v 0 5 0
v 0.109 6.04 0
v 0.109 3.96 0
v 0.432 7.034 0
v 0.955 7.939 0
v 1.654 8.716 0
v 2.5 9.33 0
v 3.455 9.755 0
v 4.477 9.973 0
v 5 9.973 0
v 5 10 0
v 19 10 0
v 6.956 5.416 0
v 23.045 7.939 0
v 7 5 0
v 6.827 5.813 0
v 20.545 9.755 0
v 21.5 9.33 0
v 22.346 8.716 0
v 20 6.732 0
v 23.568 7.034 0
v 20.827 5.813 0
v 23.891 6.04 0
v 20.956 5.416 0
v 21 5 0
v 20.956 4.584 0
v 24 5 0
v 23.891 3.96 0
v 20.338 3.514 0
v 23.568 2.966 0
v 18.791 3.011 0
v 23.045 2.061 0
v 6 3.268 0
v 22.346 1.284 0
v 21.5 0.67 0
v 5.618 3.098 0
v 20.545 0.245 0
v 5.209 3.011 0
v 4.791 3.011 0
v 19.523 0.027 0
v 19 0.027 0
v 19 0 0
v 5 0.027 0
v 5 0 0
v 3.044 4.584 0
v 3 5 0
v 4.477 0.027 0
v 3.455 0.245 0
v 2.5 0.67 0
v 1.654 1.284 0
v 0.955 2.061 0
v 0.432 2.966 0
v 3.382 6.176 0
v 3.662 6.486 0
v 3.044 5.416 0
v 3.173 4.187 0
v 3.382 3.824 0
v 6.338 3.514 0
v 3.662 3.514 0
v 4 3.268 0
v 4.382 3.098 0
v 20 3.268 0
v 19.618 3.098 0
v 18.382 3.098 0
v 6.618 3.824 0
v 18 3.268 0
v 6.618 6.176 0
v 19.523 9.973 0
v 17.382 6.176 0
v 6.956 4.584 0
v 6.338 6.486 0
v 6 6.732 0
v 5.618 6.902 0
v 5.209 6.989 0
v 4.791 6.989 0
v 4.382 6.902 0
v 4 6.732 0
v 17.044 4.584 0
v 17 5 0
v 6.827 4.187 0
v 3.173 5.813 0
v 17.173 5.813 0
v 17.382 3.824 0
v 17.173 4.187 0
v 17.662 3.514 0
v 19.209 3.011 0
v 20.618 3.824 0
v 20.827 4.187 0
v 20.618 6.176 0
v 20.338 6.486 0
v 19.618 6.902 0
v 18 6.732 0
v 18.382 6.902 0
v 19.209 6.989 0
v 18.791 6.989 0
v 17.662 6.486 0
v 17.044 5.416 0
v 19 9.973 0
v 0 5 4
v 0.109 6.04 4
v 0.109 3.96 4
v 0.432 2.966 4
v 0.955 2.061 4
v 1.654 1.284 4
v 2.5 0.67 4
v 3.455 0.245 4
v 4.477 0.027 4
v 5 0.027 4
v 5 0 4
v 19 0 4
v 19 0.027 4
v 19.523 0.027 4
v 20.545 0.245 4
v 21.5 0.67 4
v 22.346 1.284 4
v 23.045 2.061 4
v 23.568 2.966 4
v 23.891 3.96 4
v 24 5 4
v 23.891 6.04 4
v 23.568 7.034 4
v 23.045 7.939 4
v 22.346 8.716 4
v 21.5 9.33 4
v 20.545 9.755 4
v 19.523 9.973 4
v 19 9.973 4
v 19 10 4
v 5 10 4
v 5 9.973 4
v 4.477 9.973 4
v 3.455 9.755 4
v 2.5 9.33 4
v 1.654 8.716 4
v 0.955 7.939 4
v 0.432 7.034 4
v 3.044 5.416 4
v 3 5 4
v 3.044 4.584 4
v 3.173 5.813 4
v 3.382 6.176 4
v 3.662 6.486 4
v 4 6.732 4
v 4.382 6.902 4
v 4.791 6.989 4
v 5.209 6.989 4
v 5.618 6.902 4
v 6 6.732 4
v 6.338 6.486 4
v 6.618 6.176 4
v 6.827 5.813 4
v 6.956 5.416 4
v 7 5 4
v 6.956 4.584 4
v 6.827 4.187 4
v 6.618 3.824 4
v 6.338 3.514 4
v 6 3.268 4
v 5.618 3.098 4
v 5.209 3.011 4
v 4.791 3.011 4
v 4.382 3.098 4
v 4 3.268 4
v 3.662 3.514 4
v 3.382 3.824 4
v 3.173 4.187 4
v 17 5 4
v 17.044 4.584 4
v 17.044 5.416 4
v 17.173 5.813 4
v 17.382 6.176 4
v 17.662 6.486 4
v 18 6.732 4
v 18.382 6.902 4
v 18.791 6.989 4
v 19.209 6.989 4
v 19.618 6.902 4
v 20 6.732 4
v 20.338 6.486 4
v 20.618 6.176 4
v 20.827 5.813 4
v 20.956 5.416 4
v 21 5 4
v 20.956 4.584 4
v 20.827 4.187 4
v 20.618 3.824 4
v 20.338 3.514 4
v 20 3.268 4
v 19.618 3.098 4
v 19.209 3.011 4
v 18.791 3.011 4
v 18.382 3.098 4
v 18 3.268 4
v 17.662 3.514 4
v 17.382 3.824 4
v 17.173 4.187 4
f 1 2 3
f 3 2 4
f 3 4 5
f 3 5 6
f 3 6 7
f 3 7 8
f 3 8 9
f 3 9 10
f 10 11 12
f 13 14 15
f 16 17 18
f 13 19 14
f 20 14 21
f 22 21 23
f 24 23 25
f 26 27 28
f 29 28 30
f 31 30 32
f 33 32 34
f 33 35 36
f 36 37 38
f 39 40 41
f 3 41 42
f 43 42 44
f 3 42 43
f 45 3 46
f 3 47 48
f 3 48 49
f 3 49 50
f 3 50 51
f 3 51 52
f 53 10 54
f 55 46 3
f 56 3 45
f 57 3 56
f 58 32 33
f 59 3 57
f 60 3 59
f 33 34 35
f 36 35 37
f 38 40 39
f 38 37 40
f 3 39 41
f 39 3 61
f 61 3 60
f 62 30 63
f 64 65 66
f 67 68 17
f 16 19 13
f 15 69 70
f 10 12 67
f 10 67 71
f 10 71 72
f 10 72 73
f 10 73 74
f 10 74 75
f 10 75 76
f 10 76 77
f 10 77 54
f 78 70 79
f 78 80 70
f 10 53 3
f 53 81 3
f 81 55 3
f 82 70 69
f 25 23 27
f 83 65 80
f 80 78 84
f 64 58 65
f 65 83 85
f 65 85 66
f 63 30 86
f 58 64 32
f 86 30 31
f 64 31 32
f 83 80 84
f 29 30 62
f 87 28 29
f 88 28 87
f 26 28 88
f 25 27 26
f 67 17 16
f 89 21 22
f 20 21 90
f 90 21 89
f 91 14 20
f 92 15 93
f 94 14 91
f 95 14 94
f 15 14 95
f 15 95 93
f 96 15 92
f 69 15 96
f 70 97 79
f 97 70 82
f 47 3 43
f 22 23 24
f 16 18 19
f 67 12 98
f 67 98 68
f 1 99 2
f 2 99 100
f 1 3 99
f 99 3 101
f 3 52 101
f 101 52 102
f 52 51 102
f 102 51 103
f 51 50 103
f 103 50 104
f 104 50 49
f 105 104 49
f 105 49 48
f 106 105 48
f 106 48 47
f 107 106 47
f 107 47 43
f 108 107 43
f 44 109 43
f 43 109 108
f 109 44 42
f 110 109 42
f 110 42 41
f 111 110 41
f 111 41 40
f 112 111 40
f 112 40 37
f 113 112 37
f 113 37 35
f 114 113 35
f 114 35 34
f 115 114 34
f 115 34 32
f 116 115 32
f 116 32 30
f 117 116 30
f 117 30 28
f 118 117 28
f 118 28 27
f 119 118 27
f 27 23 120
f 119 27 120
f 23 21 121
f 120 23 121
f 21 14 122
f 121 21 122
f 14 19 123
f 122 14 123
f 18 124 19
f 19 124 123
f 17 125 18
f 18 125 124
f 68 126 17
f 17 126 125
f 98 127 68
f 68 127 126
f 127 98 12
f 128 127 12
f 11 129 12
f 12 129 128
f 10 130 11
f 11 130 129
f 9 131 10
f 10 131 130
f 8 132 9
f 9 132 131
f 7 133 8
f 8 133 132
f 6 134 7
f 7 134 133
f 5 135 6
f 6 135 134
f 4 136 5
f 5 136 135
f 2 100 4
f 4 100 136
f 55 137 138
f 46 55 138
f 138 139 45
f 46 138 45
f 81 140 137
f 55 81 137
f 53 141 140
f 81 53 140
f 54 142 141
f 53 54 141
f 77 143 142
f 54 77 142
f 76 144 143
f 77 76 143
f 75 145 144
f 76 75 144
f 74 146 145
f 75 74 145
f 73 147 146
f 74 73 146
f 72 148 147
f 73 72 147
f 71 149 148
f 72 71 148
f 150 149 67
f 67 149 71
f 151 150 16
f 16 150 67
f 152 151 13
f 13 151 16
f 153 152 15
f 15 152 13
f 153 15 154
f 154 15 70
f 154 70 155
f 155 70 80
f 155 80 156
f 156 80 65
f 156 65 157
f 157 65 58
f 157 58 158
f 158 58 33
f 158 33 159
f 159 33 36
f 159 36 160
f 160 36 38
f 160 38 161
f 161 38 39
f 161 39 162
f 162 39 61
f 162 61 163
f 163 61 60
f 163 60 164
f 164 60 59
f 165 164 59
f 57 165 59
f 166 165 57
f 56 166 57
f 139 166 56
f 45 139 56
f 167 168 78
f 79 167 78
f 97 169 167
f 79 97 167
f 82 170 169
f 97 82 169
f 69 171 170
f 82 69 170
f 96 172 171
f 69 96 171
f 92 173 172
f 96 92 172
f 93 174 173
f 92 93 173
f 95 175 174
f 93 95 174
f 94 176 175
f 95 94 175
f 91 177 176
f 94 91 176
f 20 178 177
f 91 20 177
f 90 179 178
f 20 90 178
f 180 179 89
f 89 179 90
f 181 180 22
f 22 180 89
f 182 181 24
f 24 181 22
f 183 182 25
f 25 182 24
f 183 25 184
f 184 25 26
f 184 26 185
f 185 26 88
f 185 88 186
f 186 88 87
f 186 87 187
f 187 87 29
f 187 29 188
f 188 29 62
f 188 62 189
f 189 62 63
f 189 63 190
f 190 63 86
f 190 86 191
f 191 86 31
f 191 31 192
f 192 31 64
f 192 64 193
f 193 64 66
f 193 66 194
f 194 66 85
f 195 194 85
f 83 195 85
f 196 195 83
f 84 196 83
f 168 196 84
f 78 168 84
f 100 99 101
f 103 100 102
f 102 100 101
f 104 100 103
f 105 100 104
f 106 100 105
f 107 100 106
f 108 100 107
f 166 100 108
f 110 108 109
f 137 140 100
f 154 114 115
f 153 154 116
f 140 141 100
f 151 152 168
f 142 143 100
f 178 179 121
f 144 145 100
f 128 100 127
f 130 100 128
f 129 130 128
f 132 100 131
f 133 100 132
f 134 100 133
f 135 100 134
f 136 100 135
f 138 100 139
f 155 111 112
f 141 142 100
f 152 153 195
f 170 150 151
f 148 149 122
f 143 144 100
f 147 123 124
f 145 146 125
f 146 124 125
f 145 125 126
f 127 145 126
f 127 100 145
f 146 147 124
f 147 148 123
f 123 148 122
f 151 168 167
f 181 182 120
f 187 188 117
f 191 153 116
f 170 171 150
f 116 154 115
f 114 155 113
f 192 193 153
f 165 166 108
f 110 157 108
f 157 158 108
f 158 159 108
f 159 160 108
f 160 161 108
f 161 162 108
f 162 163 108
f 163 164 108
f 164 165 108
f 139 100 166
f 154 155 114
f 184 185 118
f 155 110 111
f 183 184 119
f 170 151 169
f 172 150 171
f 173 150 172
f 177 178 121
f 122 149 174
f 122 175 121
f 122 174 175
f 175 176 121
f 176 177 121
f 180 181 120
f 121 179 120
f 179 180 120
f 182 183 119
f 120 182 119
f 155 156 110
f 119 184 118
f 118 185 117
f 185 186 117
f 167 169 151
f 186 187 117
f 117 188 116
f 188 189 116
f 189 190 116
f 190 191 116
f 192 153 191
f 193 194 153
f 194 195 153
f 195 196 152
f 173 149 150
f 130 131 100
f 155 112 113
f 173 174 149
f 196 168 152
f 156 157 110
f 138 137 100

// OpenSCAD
beltwidth = 10;
holedia = 4;
holewall = 3;
partthick = 4;
$fn = 30;

difference(){
union(){
translate([holedia/2+holewall,holedia/2+holewall,0])cylinder(r = holedia/2+holewall, h = partthick);
translate([holedia*1.5+holewall+beltwidth,holedia/2+holewall,0])cylinder(r = holedia/2+holewall, h = partthick);
translate([holedia/2+holewall,0,0])cube([beltwidth+holedia,holedia+holewall*2,partthick]);
}
translate([holedia/2+holewall,holedia/2+holewall,0])cylinder(r = holedia/2, h = partthick);
translate([holedia*1.5+holewall+beltwidth,holedia/2+holewall,0])cylinder(r = holedia/2, h = partthick);
}
